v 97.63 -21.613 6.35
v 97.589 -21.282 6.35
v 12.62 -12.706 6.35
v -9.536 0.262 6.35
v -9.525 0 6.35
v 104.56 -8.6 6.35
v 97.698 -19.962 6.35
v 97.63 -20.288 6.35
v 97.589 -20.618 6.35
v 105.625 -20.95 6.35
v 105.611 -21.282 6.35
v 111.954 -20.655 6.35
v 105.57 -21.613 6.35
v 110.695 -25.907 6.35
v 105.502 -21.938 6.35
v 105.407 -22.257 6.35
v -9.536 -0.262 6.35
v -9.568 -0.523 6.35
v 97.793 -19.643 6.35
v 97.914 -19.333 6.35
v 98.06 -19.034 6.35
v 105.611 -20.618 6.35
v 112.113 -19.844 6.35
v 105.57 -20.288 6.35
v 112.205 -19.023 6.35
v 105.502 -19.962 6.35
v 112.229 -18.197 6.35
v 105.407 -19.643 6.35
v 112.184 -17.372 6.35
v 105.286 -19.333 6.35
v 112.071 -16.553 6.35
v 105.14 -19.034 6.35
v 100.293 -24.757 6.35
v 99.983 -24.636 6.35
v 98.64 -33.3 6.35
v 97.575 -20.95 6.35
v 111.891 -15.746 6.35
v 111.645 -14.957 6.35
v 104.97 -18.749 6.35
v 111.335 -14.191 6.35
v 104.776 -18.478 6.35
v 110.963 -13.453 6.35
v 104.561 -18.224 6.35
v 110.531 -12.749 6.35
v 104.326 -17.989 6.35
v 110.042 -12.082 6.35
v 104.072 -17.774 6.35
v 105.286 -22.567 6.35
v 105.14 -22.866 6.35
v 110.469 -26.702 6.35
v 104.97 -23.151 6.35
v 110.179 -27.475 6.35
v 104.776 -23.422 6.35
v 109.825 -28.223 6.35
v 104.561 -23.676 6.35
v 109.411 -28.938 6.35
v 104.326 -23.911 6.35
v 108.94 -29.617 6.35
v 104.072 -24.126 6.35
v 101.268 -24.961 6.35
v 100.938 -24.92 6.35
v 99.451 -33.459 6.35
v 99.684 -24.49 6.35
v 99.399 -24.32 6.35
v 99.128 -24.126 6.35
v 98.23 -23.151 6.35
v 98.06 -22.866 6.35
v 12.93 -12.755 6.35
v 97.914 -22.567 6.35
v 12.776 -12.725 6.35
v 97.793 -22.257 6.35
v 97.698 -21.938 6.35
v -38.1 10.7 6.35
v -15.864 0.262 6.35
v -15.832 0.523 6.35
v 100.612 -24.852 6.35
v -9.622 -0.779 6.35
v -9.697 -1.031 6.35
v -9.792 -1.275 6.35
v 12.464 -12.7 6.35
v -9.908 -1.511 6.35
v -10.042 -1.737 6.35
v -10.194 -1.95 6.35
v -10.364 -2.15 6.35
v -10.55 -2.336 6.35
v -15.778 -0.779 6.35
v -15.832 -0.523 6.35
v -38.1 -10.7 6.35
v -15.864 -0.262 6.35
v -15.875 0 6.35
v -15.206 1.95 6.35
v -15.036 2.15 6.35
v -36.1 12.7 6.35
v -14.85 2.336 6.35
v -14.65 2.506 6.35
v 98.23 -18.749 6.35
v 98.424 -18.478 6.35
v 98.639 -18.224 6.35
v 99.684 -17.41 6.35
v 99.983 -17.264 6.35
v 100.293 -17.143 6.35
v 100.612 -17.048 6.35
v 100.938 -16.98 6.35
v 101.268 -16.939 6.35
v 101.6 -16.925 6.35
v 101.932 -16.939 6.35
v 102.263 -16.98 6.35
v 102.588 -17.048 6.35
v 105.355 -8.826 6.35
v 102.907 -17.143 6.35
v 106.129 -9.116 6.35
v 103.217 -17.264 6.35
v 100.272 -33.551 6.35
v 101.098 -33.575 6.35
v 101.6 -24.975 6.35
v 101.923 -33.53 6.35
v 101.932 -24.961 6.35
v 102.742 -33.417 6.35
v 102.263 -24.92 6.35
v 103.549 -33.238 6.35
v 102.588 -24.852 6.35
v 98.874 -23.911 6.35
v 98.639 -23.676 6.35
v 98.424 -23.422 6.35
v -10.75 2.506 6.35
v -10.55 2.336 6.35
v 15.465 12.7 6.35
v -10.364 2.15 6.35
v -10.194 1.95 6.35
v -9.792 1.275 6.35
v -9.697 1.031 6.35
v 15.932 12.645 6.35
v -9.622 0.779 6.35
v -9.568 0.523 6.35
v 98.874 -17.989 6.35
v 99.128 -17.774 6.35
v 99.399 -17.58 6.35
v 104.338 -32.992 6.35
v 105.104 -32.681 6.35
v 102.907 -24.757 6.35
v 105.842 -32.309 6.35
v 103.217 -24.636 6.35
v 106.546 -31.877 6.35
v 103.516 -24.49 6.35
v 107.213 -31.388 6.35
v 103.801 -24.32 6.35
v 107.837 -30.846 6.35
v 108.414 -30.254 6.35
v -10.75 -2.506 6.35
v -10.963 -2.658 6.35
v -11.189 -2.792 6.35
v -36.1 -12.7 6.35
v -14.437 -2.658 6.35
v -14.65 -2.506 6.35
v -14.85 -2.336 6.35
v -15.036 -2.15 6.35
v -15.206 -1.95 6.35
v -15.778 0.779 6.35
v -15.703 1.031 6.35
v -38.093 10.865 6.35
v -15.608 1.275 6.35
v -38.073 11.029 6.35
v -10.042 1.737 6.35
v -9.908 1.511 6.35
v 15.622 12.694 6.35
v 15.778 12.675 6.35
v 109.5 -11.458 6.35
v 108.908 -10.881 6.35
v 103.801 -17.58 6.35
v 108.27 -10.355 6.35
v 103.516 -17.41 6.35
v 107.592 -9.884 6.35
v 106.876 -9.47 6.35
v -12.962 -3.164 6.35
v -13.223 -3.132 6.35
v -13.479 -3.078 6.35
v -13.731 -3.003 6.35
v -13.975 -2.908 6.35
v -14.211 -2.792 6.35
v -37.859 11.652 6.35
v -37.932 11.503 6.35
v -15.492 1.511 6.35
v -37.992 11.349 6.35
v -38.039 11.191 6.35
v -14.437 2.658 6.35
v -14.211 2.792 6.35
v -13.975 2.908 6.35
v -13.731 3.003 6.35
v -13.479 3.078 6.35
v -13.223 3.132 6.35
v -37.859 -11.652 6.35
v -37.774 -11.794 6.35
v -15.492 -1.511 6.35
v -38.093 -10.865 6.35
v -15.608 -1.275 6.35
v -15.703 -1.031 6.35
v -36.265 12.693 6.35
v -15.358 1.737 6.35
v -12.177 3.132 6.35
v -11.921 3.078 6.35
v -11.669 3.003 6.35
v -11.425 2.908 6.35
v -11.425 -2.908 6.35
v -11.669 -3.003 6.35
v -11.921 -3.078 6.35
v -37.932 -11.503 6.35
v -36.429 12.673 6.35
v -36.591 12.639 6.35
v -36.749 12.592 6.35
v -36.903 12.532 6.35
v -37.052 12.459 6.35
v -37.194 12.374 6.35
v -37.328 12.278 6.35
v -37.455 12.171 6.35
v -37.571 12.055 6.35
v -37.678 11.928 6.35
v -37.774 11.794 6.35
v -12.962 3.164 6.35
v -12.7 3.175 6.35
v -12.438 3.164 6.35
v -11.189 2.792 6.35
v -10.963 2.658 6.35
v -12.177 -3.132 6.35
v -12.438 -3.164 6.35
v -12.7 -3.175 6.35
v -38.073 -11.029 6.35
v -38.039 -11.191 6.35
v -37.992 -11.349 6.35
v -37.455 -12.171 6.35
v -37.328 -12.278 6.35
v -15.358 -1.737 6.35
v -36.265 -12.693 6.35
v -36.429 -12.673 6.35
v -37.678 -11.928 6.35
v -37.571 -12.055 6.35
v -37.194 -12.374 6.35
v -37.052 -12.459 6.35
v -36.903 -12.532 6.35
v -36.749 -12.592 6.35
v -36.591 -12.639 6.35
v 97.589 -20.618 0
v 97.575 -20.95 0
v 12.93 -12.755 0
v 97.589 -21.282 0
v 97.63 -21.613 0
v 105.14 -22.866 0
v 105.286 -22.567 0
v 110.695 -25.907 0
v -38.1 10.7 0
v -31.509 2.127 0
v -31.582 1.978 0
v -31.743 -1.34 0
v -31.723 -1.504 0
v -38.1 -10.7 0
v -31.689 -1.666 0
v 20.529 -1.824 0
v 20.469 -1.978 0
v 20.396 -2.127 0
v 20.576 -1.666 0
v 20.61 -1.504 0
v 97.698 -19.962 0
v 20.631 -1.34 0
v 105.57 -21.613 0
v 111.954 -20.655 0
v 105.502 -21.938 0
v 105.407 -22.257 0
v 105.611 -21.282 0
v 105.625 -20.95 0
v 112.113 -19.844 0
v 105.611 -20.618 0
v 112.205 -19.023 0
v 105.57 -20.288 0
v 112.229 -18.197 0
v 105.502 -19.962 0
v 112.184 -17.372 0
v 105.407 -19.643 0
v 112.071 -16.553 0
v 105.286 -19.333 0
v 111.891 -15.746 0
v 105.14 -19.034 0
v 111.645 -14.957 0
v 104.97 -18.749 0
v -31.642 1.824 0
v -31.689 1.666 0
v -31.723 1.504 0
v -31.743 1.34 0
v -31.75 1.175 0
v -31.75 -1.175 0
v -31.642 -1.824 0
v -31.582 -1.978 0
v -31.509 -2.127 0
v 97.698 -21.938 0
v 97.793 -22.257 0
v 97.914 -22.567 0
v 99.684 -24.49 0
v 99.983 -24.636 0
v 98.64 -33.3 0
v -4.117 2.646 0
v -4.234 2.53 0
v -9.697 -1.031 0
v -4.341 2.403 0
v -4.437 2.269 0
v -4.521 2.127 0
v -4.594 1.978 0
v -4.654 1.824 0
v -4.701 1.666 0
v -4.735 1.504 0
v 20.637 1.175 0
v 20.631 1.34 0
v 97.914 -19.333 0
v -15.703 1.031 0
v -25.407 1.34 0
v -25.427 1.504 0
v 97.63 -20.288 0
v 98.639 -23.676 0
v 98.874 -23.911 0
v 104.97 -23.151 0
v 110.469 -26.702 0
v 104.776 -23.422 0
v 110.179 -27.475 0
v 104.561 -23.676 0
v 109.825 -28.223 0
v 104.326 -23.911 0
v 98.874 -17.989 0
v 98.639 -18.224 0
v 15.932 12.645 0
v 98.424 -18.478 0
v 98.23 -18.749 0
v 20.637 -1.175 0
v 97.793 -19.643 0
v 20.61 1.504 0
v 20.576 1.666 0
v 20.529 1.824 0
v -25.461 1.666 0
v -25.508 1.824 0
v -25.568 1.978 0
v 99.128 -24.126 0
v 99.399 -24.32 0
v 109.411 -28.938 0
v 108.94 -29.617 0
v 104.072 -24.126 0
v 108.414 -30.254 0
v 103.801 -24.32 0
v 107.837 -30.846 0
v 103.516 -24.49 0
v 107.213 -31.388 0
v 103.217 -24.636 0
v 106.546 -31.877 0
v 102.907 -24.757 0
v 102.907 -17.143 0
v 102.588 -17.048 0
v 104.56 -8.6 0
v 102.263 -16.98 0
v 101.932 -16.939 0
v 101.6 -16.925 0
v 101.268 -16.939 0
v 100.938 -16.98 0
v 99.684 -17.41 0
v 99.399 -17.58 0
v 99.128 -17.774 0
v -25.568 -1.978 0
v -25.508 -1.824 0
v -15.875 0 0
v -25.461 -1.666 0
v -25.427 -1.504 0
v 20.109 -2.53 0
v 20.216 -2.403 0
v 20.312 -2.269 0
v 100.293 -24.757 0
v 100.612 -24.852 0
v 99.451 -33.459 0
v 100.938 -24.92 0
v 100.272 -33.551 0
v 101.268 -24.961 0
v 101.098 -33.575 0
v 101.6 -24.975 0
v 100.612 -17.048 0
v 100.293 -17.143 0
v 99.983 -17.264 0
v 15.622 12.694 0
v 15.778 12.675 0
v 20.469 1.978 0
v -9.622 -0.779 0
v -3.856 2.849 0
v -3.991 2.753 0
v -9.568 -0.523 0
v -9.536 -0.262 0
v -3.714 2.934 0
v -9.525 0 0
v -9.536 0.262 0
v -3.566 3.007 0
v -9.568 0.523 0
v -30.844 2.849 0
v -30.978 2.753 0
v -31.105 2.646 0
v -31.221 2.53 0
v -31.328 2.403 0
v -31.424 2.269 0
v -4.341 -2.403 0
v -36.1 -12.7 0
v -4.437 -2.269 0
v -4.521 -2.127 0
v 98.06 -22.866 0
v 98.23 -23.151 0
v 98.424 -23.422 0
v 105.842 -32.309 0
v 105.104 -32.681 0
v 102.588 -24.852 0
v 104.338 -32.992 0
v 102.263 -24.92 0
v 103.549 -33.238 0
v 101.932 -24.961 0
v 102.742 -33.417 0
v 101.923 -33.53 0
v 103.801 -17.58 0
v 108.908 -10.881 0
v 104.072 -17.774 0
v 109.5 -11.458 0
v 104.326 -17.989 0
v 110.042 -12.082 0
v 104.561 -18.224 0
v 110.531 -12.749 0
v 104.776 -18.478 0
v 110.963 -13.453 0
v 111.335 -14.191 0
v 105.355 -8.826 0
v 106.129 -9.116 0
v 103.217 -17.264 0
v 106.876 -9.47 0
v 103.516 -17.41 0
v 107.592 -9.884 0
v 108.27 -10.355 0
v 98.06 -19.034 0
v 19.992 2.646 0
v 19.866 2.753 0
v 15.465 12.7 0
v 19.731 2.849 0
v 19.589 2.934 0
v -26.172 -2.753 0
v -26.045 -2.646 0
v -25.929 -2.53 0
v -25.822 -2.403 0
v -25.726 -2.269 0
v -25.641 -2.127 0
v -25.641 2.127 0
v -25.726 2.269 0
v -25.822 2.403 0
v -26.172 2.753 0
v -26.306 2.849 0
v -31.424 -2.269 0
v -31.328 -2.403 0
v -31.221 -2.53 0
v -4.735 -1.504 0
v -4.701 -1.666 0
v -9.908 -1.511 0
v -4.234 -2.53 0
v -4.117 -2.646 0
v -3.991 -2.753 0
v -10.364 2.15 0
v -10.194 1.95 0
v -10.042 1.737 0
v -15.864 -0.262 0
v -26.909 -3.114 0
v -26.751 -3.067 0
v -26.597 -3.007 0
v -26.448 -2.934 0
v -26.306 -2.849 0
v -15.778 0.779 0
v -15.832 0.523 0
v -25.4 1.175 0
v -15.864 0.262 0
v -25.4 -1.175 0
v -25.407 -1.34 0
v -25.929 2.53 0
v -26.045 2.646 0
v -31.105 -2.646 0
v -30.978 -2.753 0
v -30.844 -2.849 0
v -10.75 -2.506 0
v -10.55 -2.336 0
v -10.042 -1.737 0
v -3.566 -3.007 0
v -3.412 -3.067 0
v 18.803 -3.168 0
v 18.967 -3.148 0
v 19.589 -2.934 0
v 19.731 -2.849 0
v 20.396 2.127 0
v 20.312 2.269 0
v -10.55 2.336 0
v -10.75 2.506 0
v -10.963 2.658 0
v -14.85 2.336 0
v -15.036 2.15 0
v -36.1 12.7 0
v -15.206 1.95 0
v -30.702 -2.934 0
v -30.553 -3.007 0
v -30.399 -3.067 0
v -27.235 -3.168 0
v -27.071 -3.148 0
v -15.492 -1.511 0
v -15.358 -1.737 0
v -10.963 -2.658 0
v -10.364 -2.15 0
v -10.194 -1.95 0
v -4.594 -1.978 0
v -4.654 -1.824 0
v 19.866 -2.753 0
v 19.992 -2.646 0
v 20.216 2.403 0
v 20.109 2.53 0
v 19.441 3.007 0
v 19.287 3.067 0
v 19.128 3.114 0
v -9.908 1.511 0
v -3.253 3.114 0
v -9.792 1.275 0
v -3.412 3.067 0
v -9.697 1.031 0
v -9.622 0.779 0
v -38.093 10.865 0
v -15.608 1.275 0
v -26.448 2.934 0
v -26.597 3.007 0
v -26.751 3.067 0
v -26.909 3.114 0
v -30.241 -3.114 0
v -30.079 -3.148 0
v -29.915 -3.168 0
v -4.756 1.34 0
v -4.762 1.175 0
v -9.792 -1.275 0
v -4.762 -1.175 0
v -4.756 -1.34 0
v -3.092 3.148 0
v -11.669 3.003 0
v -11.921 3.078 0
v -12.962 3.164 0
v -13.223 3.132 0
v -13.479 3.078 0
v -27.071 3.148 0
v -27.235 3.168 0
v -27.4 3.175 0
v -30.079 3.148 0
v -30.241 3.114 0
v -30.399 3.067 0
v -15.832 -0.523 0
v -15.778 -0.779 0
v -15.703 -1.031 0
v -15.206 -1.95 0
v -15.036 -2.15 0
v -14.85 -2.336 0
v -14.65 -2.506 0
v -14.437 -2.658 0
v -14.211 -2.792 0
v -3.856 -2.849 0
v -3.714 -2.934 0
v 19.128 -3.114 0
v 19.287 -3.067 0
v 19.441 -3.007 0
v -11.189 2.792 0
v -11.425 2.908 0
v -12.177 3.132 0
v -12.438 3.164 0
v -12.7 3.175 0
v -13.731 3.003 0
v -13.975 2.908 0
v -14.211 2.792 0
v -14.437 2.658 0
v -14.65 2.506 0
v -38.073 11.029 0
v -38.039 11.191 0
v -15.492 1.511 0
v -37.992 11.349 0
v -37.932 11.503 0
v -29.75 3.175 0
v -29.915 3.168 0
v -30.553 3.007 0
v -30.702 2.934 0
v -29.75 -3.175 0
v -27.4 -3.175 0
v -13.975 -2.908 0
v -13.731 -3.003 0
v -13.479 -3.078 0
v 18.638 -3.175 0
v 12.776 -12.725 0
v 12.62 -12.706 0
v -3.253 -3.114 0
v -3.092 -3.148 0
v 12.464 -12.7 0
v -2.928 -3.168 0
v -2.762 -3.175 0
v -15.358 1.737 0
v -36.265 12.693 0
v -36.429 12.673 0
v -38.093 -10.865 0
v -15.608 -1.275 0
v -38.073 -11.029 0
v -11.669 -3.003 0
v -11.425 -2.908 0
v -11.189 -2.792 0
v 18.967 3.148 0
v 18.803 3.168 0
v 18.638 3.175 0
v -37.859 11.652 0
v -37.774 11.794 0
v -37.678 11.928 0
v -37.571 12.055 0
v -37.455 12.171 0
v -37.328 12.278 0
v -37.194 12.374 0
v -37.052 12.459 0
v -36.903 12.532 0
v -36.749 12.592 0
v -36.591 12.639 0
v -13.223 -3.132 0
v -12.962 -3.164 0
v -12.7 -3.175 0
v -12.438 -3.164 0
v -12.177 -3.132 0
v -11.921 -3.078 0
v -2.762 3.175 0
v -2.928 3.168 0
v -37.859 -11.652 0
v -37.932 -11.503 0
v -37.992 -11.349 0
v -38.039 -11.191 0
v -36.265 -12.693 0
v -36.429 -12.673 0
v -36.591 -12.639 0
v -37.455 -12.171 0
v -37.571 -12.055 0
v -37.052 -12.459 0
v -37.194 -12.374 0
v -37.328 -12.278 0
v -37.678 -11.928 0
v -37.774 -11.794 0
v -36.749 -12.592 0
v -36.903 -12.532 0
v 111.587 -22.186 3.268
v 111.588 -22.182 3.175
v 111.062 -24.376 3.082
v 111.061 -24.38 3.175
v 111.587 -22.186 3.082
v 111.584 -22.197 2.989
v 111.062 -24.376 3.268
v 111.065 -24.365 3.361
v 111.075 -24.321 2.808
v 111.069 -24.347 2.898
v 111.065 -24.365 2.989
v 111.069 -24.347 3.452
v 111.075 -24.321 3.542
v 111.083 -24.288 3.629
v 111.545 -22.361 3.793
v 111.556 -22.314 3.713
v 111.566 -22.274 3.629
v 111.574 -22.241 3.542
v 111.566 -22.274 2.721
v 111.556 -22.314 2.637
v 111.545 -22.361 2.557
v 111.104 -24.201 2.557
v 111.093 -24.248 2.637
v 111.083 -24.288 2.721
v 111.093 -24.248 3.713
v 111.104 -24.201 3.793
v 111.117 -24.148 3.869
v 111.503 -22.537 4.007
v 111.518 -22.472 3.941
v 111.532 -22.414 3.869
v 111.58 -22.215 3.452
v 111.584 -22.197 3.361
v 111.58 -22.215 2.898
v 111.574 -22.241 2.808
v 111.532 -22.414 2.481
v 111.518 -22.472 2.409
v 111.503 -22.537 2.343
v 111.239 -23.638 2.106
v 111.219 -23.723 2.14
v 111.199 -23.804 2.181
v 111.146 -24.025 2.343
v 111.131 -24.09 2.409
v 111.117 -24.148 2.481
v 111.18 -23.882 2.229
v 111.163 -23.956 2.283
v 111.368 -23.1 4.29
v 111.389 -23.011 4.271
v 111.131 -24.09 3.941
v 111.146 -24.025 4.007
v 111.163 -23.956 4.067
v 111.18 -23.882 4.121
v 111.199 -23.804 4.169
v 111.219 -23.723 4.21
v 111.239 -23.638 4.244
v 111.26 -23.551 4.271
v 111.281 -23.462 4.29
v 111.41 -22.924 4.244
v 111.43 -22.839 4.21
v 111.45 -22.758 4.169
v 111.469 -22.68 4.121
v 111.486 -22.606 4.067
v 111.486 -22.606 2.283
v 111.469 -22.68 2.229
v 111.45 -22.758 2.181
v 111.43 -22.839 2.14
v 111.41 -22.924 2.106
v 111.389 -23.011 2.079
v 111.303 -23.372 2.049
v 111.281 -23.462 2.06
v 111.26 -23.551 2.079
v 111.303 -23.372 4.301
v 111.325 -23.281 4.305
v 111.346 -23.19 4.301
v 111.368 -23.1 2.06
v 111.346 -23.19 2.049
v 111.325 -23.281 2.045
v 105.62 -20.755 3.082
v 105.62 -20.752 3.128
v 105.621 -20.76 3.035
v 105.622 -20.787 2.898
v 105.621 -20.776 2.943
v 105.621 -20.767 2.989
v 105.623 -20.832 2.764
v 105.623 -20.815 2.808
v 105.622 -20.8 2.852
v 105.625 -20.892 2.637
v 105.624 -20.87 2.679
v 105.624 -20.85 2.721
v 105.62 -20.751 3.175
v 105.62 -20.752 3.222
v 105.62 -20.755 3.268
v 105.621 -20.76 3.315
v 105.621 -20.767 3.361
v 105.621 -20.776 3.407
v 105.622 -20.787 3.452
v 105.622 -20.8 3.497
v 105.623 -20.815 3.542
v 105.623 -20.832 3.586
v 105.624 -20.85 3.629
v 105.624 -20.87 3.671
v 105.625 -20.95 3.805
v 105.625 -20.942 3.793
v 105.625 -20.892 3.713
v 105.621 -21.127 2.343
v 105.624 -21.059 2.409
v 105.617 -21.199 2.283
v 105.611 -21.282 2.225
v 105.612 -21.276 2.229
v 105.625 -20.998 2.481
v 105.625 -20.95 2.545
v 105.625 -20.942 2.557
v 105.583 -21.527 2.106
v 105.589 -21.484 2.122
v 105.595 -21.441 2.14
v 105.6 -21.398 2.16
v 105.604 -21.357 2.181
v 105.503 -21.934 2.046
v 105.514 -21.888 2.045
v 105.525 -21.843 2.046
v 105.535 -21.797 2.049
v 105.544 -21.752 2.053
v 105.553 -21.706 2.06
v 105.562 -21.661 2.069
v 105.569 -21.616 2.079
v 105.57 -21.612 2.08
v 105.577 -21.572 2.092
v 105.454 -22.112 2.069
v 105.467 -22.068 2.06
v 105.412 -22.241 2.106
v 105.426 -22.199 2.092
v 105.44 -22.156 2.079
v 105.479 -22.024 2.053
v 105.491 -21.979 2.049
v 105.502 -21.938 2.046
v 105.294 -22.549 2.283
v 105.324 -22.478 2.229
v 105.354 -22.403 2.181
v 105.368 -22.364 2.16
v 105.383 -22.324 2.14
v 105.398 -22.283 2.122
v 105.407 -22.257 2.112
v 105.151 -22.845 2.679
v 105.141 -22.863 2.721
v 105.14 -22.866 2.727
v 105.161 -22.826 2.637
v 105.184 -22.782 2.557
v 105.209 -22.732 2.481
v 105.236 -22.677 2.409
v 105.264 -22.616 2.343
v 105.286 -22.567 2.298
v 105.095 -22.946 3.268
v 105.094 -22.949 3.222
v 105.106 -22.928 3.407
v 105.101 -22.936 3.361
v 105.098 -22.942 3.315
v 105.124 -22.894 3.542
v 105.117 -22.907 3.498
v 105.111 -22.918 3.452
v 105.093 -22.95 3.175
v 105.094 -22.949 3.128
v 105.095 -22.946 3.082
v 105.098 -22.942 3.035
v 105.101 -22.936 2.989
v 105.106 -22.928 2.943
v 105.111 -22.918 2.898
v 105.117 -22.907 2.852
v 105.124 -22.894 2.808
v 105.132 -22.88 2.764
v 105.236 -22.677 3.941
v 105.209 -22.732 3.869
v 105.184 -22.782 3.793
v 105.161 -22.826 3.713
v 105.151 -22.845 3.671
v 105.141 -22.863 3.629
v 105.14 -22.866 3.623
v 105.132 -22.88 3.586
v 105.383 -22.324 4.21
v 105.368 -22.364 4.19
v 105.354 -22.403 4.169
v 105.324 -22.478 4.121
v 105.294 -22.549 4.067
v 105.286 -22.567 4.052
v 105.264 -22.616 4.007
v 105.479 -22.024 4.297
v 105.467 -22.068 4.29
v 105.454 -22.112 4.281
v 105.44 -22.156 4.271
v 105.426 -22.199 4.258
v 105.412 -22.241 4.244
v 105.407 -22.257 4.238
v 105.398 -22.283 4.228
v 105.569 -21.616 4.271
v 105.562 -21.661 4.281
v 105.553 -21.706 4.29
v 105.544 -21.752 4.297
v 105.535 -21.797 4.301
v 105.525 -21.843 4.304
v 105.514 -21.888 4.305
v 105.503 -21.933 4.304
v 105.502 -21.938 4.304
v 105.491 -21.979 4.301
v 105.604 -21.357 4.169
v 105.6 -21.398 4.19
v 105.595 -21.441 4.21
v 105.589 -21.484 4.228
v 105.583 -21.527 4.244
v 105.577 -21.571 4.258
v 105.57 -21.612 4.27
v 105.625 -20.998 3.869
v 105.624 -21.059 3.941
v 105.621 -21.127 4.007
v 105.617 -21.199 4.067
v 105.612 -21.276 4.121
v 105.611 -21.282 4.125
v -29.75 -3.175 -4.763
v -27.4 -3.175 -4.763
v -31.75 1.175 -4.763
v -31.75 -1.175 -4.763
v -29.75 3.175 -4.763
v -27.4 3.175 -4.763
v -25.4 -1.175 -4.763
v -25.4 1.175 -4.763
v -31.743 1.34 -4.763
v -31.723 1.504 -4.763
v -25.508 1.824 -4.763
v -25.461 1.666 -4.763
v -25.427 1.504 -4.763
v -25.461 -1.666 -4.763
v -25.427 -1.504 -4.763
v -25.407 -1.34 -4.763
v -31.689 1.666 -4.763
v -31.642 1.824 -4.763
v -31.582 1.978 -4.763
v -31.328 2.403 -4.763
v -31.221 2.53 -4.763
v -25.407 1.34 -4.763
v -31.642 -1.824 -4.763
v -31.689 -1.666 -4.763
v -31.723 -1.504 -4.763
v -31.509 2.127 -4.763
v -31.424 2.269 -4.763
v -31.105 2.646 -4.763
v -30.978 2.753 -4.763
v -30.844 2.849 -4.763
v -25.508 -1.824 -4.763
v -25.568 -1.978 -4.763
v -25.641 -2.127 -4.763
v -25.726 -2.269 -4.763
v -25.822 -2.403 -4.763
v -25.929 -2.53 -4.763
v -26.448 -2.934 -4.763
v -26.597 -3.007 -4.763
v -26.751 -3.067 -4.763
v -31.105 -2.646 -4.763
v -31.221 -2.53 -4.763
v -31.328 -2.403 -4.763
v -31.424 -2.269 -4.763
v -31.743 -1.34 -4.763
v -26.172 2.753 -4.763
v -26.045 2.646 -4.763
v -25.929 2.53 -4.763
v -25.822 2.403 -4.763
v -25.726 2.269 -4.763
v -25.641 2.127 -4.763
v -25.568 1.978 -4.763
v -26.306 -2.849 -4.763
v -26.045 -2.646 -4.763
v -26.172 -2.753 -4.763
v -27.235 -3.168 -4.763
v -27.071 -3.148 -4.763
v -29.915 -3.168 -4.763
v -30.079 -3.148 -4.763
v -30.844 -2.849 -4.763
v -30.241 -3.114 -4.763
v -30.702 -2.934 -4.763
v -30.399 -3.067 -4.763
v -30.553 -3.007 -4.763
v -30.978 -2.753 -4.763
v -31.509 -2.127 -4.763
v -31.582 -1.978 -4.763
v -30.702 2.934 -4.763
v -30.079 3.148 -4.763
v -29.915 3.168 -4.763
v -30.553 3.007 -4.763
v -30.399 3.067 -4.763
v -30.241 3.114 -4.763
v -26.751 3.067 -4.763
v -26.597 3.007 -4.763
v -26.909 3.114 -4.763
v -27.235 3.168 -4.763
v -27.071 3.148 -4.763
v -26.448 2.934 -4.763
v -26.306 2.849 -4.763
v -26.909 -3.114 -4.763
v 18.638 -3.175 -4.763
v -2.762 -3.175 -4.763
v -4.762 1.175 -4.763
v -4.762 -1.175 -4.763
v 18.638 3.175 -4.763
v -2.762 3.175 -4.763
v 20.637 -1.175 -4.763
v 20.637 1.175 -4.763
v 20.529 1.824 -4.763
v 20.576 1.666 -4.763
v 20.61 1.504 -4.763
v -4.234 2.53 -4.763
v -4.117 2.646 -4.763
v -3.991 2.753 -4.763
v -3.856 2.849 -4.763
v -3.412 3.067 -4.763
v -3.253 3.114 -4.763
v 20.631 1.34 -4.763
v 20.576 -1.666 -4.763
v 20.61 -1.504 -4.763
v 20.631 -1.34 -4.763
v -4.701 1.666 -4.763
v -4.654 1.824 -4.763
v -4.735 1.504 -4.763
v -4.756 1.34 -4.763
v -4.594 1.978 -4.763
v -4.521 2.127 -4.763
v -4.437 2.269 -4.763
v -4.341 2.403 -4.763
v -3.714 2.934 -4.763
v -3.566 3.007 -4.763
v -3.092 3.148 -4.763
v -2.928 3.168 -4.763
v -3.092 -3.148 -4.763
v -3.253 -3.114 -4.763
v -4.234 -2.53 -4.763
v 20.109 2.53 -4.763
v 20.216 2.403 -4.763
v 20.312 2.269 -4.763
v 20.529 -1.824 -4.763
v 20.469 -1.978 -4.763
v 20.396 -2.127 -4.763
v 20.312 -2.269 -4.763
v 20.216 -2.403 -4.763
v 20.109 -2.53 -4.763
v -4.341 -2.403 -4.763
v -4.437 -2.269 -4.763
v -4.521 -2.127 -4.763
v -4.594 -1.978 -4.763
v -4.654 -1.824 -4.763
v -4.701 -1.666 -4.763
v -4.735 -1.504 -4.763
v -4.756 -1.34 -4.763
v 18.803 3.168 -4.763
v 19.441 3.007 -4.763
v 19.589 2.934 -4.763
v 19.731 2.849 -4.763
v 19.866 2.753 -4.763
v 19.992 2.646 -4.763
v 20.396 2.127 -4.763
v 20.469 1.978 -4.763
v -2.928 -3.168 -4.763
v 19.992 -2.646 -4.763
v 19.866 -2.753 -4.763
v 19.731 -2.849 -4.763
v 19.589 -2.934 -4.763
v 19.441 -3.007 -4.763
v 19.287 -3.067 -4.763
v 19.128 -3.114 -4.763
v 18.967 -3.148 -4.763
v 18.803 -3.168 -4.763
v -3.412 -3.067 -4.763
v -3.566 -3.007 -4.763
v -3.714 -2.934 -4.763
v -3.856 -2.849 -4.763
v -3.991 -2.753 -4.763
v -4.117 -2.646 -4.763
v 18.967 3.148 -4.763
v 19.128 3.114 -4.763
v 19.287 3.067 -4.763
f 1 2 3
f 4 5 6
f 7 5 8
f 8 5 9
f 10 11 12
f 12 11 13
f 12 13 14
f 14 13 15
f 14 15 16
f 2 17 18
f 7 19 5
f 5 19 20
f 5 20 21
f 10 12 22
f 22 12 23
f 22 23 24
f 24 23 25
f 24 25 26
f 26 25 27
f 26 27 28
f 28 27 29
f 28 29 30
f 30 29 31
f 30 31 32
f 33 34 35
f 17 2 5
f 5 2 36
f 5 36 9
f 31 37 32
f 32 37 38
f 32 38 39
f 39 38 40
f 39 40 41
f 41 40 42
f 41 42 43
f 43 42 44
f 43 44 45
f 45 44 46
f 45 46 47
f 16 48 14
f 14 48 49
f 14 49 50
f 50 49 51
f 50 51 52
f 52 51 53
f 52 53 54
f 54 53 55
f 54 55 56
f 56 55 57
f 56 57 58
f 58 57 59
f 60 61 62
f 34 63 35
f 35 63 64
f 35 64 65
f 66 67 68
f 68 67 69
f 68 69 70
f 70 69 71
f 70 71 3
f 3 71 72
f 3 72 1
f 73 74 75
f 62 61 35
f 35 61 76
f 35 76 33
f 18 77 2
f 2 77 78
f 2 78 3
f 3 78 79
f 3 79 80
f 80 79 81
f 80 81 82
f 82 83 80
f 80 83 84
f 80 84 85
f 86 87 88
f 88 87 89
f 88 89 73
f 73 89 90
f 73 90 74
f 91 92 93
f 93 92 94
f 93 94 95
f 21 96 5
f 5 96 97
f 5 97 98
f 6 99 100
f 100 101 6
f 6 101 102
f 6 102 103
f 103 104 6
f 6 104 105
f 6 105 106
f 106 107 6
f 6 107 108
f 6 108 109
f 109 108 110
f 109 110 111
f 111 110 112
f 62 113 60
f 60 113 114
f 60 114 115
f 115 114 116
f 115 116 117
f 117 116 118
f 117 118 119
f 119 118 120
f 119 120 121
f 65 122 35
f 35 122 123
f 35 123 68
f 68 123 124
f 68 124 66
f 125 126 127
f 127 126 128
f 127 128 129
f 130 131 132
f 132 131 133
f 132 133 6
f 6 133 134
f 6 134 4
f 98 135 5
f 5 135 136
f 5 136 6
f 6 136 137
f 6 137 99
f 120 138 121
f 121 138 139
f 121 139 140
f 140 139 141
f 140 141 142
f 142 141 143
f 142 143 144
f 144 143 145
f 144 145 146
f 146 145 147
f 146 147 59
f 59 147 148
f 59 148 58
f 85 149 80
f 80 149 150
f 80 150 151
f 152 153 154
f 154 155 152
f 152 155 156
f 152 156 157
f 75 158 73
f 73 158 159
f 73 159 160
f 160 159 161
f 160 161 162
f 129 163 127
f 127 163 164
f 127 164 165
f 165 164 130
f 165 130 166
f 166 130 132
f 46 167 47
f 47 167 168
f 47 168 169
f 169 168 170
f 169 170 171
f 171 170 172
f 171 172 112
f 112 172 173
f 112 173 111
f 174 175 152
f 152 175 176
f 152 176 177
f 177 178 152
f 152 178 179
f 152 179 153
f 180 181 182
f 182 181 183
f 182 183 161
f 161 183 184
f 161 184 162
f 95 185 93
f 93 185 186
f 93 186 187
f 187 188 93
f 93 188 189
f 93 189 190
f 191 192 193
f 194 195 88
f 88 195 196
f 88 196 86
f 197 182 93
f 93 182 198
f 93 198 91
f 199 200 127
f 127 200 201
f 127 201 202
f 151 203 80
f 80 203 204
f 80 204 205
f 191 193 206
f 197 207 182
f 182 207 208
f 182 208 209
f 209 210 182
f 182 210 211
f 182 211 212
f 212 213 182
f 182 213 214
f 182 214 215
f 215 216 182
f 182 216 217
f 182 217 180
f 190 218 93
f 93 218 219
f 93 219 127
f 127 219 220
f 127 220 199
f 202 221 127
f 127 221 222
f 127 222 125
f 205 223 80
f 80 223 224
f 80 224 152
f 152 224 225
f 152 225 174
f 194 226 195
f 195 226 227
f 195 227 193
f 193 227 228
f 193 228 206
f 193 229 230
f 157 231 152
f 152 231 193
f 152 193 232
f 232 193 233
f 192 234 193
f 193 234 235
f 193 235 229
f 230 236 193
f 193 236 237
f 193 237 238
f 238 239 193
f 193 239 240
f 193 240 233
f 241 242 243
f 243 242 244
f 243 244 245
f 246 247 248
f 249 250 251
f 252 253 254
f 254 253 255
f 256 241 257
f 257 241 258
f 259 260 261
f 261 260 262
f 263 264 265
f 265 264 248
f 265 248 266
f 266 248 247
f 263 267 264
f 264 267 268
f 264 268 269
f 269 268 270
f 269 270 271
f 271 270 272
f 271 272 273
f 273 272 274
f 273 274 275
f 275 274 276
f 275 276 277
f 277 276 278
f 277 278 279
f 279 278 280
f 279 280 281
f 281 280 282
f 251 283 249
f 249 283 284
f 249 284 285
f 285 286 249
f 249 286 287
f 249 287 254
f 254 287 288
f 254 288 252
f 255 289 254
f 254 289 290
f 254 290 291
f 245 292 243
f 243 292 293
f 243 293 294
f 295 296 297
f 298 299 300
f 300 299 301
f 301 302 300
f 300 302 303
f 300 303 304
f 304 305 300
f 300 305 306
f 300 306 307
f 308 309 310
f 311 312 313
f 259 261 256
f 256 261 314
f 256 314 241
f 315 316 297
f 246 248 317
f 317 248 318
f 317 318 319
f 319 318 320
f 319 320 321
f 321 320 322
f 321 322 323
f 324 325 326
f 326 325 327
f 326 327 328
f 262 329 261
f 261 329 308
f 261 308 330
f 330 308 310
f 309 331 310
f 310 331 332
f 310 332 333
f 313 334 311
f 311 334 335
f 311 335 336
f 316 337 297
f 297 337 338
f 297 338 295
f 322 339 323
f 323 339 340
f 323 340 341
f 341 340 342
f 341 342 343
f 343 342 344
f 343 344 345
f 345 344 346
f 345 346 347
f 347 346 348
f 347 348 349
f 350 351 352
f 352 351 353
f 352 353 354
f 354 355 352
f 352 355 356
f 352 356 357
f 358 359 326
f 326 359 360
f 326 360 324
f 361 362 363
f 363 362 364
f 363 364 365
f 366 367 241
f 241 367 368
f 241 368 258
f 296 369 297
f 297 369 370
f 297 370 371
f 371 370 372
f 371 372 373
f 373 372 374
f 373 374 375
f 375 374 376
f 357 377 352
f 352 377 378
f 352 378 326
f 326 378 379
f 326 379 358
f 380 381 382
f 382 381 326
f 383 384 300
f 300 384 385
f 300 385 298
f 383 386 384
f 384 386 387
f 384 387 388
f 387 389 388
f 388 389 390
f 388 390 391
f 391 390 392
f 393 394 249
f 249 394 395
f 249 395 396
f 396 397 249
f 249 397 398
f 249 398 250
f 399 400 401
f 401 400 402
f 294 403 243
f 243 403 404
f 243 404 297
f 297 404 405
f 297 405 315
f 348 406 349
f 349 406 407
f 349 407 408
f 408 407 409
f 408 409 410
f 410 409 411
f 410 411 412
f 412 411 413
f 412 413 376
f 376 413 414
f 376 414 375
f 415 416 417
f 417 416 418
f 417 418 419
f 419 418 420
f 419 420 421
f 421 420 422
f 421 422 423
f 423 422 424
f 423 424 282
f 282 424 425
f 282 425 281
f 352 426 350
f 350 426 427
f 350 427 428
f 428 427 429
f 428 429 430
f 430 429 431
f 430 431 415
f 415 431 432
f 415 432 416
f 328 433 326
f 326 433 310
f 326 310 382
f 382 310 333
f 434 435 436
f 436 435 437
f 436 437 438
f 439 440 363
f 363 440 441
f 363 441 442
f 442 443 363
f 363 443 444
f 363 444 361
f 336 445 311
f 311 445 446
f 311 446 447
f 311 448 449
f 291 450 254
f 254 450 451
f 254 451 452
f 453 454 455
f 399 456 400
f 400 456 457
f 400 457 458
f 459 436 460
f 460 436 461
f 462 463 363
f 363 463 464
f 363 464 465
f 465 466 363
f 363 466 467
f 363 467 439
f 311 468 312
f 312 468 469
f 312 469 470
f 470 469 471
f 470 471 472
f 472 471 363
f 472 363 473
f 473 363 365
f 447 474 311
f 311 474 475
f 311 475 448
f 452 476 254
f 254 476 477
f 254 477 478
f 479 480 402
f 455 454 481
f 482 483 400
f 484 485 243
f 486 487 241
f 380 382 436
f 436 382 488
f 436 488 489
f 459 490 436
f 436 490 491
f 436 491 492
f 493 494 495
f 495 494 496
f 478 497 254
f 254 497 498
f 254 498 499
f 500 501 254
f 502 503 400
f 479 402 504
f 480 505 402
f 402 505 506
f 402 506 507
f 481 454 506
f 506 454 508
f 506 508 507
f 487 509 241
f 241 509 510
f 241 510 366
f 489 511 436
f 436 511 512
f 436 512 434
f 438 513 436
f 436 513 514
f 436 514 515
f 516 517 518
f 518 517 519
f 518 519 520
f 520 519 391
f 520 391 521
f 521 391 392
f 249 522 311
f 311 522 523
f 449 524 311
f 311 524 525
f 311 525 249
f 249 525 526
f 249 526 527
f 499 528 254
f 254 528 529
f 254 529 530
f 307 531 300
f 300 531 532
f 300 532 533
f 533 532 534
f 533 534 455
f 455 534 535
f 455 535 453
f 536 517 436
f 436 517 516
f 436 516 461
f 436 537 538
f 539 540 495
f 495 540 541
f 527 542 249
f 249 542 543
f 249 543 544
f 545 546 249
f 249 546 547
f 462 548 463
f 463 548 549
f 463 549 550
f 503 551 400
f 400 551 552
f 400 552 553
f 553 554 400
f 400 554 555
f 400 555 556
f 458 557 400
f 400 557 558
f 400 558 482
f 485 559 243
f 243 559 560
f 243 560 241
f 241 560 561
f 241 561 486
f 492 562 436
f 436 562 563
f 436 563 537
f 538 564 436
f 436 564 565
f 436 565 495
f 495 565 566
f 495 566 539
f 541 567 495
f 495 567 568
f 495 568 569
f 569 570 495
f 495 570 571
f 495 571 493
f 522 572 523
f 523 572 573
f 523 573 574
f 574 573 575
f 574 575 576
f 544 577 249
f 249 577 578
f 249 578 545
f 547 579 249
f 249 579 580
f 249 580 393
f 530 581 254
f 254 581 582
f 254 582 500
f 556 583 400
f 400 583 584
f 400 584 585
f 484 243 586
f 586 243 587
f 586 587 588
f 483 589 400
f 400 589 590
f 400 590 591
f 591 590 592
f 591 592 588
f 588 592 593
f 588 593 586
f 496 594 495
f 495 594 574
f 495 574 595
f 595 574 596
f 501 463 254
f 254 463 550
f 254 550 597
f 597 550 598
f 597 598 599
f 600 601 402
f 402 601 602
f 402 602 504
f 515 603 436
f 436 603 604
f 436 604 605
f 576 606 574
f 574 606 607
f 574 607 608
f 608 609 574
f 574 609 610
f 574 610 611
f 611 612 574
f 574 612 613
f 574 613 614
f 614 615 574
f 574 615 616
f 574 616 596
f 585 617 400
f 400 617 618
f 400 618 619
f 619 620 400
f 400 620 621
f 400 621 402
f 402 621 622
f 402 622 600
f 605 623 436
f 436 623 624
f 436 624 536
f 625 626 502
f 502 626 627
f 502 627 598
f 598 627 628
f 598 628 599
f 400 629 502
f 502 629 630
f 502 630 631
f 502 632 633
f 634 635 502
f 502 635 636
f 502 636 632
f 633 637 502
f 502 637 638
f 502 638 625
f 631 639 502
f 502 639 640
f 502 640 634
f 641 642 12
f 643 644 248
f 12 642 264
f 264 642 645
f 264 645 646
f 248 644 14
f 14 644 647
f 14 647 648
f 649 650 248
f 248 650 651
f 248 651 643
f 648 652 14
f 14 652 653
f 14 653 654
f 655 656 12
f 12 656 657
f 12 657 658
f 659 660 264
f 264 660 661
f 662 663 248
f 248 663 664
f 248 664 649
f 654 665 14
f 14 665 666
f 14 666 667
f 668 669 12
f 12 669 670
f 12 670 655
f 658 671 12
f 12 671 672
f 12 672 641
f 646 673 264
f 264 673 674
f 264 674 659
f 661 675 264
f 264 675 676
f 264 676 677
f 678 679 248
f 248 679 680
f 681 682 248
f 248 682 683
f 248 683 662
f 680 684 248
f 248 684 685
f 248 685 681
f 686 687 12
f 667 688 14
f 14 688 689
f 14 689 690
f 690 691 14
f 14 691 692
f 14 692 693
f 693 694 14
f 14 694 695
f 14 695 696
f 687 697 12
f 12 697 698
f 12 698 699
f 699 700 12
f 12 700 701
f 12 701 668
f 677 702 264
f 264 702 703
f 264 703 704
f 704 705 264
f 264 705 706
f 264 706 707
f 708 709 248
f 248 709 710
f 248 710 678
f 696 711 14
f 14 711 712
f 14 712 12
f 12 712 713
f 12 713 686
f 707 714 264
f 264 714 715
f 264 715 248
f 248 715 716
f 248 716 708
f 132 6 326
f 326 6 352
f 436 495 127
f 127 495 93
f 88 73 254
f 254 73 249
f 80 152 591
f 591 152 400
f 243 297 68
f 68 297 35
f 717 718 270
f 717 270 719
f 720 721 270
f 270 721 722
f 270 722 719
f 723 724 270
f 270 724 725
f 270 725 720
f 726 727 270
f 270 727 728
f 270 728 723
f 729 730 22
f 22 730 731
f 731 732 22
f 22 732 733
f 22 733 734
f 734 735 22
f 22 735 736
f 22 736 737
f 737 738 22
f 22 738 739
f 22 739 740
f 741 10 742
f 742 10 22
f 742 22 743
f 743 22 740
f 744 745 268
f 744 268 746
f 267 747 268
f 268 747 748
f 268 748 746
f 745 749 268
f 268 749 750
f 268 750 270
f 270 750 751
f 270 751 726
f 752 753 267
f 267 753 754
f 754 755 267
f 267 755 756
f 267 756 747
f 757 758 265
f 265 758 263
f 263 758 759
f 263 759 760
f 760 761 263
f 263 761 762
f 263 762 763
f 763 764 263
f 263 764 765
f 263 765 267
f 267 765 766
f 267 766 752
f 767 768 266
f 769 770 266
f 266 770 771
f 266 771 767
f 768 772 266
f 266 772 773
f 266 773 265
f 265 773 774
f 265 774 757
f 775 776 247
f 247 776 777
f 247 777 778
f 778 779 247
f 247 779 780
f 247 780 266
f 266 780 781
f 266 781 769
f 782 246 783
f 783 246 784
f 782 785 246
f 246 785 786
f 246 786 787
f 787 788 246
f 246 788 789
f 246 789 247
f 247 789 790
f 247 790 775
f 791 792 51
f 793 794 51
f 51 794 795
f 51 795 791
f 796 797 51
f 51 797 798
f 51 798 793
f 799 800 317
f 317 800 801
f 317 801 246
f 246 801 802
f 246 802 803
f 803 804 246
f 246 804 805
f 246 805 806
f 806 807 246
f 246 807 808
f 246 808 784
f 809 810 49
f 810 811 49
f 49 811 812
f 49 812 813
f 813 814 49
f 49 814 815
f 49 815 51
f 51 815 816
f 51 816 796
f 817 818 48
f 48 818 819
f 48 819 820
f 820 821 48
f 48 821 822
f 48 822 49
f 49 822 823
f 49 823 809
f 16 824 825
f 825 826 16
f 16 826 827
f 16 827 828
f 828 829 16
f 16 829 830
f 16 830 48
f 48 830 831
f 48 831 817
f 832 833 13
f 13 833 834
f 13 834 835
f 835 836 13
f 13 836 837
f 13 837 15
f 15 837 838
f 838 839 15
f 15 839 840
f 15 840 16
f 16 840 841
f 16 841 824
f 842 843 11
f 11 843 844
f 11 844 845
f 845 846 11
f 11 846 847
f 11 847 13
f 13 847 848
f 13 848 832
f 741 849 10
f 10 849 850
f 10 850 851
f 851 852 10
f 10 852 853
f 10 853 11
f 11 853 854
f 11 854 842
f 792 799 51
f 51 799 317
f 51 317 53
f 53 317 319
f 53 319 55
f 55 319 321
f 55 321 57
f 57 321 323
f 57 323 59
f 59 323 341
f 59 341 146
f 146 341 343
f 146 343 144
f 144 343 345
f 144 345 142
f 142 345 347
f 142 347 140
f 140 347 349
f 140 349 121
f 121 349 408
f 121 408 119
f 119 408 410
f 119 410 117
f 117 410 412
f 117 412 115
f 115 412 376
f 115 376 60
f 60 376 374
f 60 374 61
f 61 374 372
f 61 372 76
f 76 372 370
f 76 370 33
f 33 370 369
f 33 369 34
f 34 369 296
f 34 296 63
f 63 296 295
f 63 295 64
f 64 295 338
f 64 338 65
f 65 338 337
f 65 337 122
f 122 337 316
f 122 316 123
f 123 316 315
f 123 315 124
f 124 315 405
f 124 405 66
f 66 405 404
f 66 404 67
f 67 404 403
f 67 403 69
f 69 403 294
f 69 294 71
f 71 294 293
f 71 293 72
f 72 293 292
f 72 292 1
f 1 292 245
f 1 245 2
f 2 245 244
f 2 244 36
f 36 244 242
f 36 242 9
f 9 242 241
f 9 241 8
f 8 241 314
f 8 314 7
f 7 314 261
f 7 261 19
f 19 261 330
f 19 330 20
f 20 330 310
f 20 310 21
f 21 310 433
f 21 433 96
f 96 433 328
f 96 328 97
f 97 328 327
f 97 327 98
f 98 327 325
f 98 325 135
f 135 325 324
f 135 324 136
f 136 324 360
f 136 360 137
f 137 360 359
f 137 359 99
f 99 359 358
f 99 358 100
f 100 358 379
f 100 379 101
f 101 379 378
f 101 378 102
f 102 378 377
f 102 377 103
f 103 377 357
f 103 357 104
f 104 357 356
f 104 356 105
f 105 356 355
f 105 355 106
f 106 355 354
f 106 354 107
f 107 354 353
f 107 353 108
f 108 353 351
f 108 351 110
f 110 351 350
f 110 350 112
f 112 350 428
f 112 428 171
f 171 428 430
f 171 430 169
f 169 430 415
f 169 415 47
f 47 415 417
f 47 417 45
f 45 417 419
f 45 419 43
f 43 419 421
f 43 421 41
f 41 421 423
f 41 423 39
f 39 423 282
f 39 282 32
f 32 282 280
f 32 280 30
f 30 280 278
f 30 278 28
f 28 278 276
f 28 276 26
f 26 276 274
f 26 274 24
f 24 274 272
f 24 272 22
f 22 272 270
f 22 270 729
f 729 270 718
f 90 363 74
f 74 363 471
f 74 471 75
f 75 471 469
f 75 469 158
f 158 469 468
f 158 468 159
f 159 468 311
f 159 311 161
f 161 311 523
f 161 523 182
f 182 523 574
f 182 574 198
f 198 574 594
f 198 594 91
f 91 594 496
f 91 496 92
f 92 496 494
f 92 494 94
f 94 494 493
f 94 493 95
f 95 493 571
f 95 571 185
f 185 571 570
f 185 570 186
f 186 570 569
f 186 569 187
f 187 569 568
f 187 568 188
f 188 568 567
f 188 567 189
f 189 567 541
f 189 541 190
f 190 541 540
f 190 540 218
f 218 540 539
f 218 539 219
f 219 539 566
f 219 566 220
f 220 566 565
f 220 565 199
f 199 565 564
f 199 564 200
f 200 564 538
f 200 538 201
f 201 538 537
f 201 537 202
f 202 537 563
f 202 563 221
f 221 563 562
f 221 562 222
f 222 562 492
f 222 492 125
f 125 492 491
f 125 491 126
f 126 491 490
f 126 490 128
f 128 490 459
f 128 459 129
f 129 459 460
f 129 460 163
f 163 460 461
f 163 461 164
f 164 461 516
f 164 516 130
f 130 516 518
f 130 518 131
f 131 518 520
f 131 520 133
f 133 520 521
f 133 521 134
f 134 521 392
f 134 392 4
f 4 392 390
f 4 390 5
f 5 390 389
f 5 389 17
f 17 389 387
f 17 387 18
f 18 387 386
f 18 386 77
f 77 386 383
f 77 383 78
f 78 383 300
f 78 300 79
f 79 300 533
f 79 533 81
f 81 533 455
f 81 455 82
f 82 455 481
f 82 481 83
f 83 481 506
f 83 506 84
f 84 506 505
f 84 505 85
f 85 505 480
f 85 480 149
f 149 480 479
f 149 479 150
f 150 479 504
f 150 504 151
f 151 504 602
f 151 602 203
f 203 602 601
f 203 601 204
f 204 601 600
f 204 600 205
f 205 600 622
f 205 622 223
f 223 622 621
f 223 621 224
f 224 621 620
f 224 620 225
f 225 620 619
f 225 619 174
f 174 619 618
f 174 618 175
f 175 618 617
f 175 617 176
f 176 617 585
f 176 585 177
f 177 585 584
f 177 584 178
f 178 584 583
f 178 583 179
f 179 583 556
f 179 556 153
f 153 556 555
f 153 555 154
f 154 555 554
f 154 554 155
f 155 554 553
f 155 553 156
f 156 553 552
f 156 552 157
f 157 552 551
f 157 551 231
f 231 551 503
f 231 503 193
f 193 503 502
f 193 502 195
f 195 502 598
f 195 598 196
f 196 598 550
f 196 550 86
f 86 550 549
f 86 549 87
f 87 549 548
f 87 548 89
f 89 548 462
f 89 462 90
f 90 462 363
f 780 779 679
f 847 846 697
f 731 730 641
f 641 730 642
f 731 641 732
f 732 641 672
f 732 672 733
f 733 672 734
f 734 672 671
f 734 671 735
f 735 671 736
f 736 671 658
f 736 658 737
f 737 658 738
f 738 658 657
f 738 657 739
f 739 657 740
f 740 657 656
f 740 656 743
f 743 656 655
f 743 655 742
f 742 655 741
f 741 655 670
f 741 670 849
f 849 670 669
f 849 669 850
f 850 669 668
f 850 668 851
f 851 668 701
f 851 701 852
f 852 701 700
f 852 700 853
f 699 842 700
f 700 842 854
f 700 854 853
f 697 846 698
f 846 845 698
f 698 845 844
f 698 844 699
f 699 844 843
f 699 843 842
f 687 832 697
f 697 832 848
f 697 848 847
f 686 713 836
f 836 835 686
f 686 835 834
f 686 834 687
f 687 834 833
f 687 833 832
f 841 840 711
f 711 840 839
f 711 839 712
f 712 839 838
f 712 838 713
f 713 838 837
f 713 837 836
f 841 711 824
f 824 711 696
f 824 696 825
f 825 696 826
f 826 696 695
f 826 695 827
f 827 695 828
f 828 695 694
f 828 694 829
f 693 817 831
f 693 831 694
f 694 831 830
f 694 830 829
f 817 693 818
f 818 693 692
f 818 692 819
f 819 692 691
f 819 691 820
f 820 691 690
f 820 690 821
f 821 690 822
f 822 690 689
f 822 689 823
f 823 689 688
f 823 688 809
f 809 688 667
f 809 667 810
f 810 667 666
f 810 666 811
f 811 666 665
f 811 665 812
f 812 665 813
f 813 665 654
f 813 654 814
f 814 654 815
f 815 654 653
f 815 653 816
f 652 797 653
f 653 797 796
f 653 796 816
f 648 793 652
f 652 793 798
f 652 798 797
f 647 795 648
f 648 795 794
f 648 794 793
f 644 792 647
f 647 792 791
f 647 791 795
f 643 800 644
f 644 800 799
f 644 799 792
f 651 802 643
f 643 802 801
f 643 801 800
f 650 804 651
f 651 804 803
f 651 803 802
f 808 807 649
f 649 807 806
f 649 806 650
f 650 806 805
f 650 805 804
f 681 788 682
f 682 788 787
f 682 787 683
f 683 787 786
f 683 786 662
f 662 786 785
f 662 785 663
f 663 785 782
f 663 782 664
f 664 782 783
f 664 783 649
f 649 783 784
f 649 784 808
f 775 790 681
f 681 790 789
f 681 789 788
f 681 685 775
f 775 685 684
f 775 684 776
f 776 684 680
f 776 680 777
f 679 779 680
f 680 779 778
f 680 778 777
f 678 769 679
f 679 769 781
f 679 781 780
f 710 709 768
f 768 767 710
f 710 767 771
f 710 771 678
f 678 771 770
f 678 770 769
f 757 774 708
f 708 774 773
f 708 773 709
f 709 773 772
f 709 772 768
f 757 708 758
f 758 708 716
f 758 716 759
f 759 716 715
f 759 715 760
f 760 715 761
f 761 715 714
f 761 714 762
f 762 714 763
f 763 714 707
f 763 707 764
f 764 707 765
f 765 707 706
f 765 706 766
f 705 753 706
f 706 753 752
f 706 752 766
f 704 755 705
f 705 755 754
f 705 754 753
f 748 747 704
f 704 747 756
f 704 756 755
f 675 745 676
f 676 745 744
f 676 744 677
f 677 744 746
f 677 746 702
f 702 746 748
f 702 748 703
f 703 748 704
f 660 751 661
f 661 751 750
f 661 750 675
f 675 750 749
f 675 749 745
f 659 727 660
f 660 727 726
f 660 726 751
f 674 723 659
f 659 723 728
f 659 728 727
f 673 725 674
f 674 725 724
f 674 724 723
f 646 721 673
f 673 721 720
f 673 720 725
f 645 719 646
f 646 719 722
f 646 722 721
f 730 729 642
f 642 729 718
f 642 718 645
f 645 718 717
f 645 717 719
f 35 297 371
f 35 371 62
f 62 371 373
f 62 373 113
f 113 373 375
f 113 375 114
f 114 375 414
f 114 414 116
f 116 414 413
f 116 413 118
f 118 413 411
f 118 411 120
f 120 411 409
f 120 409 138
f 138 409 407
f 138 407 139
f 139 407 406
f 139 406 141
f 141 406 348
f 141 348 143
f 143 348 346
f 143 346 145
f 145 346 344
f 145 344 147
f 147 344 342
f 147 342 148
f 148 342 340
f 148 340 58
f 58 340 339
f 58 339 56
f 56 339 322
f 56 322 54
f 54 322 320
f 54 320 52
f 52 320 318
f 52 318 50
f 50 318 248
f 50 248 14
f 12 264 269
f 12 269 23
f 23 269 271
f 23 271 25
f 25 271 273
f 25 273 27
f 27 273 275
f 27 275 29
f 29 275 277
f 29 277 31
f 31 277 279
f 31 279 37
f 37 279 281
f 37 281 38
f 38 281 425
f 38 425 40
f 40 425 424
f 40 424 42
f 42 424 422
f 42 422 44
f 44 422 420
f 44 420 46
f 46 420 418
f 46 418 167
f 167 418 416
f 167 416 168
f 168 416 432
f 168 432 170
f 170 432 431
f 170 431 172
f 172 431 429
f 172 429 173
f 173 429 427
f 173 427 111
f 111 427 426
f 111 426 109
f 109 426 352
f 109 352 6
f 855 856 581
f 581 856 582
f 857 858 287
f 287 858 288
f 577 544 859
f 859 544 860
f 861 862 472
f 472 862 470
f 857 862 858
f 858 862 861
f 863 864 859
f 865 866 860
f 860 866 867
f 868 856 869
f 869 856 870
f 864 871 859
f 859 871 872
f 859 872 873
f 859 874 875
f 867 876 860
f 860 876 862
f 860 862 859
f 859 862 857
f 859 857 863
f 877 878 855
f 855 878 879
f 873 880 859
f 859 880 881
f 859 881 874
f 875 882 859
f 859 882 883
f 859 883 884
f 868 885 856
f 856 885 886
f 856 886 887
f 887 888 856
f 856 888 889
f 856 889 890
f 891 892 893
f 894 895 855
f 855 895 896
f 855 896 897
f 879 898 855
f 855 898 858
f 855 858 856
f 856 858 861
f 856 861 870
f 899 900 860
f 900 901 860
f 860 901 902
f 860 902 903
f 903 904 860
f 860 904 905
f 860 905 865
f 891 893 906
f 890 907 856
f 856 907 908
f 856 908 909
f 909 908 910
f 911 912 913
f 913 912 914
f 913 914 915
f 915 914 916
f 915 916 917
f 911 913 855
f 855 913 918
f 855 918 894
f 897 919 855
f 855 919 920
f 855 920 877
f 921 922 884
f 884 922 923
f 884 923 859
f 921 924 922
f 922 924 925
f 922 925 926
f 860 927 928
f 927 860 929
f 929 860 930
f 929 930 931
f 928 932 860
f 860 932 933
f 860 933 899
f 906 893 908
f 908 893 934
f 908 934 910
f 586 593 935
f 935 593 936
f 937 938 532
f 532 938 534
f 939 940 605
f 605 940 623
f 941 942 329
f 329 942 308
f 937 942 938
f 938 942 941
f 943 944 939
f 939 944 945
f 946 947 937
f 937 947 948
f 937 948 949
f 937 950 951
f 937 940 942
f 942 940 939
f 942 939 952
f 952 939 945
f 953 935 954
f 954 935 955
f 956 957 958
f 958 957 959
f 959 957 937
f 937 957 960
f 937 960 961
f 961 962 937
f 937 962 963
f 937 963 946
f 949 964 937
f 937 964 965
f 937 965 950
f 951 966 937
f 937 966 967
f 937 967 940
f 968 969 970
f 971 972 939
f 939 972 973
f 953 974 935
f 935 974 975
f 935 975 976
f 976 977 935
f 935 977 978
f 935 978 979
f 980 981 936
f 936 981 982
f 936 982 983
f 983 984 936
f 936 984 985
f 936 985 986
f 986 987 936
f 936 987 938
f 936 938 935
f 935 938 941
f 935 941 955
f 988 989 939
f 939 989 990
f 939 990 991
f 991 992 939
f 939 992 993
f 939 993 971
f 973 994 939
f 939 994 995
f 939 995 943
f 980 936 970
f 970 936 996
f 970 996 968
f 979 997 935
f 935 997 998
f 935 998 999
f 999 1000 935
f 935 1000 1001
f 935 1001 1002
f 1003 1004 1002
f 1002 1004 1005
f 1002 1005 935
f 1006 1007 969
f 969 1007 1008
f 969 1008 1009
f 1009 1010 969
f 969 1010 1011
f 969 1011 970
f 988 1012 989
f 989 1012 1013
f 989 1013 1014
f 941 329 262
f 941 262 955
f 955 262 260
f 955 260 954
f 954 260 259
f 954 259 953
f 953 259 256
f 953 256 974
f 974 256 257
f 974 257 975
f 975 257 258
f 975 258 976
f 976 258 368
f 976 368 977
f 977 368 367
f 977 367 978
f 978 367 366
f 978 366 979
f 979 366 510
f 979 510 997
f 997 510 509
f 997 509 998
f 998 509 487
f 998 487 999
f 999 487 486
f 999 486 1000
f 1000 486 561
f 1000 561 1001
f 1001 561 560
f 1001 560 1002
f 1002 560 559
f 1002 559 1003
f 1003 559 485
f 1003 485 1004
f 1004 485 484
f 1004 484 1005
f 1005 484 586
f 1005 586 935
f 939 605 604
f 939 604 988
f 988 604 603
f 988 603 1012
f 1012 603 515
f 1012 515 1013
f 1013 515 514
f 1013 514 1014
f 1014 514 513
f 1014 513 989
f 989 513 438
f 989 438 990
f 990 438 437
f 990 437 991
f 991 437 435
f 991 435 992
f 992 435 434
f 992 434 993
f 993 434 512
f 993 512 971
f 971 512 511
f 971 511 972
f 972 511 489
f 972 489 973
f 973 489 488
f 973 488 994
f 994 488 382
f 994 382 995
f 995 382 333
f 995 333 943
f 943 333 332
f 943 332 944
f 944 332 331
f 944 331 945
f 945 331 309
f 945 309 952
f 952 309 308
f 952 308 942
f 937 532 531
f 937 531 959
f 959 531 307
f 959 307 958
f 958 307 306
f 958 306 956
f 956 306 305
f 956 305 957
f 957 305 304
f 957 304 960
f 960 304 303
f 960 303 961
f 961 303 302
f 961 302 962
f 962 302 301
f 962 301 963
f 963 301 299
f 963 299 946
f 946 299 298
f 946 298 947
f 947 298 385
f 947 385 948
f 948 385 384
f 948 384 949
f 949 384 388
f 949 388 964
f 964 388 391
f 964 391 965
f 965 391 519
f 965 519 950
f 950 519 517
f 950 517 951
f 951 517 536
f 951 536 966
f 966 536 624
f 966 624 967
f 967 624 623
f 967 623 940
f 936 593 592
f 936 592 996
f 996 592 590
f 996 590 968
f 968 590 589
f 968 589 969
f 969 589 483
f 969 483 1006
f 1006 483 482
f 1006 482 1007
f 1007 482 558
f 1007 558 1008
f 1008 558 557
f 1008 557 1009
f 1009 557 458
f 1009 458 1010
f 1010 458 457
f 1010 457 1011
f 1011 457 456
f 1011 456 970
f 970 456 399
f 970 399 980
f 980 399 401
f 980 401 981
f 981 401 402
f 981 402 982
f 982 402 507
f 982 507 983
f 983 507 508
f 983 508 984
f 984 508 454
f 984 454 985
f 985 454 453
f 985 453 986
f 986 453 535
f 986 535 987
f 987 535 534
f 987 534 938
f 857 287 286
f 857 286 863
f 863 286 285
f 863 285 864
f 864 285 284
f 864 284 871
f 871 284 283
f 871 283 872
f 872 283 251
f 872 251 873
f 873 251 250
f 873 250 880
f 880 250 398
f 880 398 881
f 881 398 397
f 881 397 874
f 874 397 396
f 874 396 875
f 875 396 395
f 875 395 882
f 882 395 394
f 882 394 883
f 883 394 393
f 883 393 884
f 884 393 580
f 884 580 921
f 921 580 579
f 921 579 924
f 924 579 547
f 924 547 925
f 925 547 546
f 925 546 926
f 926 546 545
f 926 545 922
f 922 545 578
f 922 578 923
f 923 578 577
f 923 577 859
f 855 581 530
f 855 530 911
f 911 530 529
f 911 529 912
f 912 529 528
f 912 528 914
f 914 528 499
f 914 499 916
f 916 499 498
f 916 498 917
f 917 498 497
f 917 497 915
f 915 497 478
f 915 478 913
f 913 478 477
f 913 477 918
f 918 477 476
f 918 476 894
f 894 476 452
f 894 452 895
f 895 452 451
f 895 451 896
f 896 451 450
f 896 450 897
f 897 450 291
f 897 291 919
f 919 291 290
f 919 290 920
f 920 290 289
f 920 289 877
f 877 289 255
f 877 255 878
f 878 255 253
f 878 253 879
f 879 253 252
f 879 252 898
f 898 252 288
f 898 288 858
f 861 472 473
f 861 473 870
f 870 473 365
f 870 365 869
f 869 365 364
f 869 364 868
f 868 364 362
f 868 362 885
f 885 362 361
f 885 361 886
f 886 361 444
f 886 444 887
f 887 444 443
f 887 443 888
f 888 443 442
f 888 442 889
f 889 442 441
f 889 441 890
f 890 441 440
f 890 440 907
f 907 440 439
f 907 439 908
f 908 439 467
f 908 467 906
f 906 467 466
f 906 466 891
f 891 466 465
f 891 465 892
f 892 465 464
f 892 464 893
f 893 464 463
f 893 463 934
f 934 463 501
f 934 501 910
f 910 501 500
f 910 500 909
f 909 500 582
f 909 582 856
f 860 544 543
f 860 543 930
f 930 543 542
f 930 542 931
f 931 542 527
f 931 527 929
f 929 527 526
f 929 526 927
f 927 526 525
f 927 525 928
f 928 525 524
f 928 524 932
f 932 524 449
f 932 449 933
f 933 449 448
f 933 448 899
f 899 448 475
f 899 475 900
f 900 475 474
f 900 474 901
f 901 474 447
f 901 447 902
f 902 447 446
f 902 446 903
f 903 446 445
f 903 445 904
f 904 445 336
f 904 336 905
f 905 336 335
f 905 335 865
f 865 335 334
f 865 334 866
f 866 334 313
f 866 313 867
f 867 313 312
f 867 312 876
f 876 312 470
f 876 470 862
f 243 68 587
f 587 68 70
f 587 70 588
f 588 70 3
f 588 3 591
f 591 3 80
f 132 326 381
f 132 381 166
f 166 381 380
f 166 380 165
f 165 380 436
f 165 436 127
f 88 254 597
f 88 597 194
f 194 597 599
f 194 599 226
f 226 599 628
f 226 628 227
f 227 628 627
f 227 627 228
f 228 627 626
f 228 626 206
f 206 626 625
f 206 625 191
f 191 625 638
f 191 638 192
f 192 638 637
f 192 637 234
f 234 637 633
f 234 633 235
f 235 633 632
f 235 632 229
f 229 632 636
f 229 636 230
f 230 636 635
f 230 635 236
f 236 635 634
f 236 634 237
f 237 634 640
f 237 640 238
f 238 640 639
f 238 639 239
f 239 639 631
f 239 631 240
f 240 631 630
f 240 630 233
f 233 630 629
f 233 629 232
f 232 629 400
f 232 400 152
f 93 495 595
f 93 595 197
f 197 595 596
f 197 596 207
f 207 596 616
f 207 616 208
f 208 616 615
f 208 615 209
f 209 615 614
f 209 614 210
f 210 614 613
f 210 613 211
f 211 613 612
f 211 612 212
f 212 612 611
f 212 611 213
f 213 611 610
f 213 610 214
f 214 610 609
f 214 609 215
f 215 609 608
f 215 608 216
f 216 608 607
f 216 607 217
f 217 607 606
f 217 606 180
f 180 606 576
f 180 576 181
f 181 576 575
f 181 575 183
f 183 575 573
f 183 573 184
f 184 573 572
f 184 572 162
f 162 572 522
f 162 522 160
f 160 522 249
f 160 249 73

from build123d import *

# Parameters (mm, degrees)
SKETCH1_R               = 3.175
SKETCH1_R_2             = 4.025
BOSS_EXTRUDE1_DEPTH     = 6.35
CUT_EXTRUDE2_REACH      = 155.866
CUT_EXTRUDE2_END_RADIUS = 4.025
SKETCH3_R               = 1.1303
FILLET4_R               = 10
SKETCH4_W               = 6.35
SKETCH4_H               = 6.35
SKETCH4_W_2             = 25.4
BOSS_EXTRUDE2_DEPTH     = 4.7625
FILLET3_R               = 2


with BuildPart() as part:
    # Sketch1 → Boss-Extrude1 (new body)
    with BuildSketch(Plane.XY):
        Polygon((-38.1, -12.7), (-38.1, 12.7), (15.701735639, 12.7), (114.28491418, -10.930870684), (108.364133554, -35.631161305), (12.7, -12.7), align=None)
        with Locations((-12.7, 0)):
            Circle(SKETCH1_R, mode=Mode.SUBTRACT)
        with Locations((101.6, -20.95)):
            Circle(SKETCH1_R_2, mode=Mode.SUBTRACT)
    extrude(amount=BOSS_EXTRUDE1_DEPTH)

    # Cut-Extrude2: up to this cylinder (the profile starts outside it)
    cut_extrude2_end = Plane(origin=(101.6, -20.95, 3.175), z_dir=(0, 0, -1)) * Cylinder(CUT_EXTRUDE2_END_RADIUS, 320.782, mode=Mode.PRIVATE)
    # Sketch3 → Cut-Extrude2 (cut, up to the surface)
    with BuildSketch(Plane(origin=(110.552900462, -26.500071647, 0), x_dir=(0, 0, -1), z_dir=(0.9724523866696595, -0.23310159943784806, 0)), mode=Mode.PRIVATE) as cut_extrude2_sk1:
        with Locations(Location((-3.175, 3.310245002, 0), (0, 0, 90))):
            Circle(SKETCH3_R)
    cut_extrude2_tool1 = extrude(cut_extrude2_sk1.sketch, amount=-CUT_EXTRUDE2_REACH, mode=Mode.PRIVATE) - cut_extrude2_end
    add(cut_extrude2_tool1.solids().sort_by_distance((111.324524, -23.281016, 3.175))[0], mode=Mode.SUBTRACT)

    # Fillet4
    fillet4_edges = [part.edges().sort_by_distance(p)[0] for p in [
        (108.364133554, -35.631161305, 3.175),
        (114.28491418, -10.930870684, 3.175),
    ]]
    fillet(fillet4_edges, radius=FILLET4_R)

    # Sketch4 → Boss-Extrude2 (add)
    with BuildSketch(Plane.XY):
        with Locations((-28.575, 0)):
            Rectangle(SKETCH4_W, SKETCH4_H)
        with Locations((7.9375, 0)):
            Rectangle(SKETCH4_W_2, SKETCH4_H)
    extrude(amount=-BOSS_EXTRUDE2_DEPTH)

    # Fillet3
    fillet3_edges = [part.edges().sort_by_distance(p)[0] for p in [
        (12.7, -12.7, 3.175),
        (-38.1, -12.7, 3.175),
        (-38.1, 12.7, 3.175),
        (15.701735639, 12.7, 3.175),
        (-25.4, -3.175, -2.38125),
        (-31.75, -3.175, -2.38125),
        (-31.75, 3.175, -2.38125),
        (-25.4, 3.175, -2.38125),
        (20.6375, -3.175, -2.38125),
        (-4.7625, -3.175, -2.38125),
        (-4.7625, 3.175, -2.38125),
        (20.6375, 3.175, -2.38125),
    ]]
    fillet(fillet3_edges, radius=FILLET3_R)


solid = part.part
